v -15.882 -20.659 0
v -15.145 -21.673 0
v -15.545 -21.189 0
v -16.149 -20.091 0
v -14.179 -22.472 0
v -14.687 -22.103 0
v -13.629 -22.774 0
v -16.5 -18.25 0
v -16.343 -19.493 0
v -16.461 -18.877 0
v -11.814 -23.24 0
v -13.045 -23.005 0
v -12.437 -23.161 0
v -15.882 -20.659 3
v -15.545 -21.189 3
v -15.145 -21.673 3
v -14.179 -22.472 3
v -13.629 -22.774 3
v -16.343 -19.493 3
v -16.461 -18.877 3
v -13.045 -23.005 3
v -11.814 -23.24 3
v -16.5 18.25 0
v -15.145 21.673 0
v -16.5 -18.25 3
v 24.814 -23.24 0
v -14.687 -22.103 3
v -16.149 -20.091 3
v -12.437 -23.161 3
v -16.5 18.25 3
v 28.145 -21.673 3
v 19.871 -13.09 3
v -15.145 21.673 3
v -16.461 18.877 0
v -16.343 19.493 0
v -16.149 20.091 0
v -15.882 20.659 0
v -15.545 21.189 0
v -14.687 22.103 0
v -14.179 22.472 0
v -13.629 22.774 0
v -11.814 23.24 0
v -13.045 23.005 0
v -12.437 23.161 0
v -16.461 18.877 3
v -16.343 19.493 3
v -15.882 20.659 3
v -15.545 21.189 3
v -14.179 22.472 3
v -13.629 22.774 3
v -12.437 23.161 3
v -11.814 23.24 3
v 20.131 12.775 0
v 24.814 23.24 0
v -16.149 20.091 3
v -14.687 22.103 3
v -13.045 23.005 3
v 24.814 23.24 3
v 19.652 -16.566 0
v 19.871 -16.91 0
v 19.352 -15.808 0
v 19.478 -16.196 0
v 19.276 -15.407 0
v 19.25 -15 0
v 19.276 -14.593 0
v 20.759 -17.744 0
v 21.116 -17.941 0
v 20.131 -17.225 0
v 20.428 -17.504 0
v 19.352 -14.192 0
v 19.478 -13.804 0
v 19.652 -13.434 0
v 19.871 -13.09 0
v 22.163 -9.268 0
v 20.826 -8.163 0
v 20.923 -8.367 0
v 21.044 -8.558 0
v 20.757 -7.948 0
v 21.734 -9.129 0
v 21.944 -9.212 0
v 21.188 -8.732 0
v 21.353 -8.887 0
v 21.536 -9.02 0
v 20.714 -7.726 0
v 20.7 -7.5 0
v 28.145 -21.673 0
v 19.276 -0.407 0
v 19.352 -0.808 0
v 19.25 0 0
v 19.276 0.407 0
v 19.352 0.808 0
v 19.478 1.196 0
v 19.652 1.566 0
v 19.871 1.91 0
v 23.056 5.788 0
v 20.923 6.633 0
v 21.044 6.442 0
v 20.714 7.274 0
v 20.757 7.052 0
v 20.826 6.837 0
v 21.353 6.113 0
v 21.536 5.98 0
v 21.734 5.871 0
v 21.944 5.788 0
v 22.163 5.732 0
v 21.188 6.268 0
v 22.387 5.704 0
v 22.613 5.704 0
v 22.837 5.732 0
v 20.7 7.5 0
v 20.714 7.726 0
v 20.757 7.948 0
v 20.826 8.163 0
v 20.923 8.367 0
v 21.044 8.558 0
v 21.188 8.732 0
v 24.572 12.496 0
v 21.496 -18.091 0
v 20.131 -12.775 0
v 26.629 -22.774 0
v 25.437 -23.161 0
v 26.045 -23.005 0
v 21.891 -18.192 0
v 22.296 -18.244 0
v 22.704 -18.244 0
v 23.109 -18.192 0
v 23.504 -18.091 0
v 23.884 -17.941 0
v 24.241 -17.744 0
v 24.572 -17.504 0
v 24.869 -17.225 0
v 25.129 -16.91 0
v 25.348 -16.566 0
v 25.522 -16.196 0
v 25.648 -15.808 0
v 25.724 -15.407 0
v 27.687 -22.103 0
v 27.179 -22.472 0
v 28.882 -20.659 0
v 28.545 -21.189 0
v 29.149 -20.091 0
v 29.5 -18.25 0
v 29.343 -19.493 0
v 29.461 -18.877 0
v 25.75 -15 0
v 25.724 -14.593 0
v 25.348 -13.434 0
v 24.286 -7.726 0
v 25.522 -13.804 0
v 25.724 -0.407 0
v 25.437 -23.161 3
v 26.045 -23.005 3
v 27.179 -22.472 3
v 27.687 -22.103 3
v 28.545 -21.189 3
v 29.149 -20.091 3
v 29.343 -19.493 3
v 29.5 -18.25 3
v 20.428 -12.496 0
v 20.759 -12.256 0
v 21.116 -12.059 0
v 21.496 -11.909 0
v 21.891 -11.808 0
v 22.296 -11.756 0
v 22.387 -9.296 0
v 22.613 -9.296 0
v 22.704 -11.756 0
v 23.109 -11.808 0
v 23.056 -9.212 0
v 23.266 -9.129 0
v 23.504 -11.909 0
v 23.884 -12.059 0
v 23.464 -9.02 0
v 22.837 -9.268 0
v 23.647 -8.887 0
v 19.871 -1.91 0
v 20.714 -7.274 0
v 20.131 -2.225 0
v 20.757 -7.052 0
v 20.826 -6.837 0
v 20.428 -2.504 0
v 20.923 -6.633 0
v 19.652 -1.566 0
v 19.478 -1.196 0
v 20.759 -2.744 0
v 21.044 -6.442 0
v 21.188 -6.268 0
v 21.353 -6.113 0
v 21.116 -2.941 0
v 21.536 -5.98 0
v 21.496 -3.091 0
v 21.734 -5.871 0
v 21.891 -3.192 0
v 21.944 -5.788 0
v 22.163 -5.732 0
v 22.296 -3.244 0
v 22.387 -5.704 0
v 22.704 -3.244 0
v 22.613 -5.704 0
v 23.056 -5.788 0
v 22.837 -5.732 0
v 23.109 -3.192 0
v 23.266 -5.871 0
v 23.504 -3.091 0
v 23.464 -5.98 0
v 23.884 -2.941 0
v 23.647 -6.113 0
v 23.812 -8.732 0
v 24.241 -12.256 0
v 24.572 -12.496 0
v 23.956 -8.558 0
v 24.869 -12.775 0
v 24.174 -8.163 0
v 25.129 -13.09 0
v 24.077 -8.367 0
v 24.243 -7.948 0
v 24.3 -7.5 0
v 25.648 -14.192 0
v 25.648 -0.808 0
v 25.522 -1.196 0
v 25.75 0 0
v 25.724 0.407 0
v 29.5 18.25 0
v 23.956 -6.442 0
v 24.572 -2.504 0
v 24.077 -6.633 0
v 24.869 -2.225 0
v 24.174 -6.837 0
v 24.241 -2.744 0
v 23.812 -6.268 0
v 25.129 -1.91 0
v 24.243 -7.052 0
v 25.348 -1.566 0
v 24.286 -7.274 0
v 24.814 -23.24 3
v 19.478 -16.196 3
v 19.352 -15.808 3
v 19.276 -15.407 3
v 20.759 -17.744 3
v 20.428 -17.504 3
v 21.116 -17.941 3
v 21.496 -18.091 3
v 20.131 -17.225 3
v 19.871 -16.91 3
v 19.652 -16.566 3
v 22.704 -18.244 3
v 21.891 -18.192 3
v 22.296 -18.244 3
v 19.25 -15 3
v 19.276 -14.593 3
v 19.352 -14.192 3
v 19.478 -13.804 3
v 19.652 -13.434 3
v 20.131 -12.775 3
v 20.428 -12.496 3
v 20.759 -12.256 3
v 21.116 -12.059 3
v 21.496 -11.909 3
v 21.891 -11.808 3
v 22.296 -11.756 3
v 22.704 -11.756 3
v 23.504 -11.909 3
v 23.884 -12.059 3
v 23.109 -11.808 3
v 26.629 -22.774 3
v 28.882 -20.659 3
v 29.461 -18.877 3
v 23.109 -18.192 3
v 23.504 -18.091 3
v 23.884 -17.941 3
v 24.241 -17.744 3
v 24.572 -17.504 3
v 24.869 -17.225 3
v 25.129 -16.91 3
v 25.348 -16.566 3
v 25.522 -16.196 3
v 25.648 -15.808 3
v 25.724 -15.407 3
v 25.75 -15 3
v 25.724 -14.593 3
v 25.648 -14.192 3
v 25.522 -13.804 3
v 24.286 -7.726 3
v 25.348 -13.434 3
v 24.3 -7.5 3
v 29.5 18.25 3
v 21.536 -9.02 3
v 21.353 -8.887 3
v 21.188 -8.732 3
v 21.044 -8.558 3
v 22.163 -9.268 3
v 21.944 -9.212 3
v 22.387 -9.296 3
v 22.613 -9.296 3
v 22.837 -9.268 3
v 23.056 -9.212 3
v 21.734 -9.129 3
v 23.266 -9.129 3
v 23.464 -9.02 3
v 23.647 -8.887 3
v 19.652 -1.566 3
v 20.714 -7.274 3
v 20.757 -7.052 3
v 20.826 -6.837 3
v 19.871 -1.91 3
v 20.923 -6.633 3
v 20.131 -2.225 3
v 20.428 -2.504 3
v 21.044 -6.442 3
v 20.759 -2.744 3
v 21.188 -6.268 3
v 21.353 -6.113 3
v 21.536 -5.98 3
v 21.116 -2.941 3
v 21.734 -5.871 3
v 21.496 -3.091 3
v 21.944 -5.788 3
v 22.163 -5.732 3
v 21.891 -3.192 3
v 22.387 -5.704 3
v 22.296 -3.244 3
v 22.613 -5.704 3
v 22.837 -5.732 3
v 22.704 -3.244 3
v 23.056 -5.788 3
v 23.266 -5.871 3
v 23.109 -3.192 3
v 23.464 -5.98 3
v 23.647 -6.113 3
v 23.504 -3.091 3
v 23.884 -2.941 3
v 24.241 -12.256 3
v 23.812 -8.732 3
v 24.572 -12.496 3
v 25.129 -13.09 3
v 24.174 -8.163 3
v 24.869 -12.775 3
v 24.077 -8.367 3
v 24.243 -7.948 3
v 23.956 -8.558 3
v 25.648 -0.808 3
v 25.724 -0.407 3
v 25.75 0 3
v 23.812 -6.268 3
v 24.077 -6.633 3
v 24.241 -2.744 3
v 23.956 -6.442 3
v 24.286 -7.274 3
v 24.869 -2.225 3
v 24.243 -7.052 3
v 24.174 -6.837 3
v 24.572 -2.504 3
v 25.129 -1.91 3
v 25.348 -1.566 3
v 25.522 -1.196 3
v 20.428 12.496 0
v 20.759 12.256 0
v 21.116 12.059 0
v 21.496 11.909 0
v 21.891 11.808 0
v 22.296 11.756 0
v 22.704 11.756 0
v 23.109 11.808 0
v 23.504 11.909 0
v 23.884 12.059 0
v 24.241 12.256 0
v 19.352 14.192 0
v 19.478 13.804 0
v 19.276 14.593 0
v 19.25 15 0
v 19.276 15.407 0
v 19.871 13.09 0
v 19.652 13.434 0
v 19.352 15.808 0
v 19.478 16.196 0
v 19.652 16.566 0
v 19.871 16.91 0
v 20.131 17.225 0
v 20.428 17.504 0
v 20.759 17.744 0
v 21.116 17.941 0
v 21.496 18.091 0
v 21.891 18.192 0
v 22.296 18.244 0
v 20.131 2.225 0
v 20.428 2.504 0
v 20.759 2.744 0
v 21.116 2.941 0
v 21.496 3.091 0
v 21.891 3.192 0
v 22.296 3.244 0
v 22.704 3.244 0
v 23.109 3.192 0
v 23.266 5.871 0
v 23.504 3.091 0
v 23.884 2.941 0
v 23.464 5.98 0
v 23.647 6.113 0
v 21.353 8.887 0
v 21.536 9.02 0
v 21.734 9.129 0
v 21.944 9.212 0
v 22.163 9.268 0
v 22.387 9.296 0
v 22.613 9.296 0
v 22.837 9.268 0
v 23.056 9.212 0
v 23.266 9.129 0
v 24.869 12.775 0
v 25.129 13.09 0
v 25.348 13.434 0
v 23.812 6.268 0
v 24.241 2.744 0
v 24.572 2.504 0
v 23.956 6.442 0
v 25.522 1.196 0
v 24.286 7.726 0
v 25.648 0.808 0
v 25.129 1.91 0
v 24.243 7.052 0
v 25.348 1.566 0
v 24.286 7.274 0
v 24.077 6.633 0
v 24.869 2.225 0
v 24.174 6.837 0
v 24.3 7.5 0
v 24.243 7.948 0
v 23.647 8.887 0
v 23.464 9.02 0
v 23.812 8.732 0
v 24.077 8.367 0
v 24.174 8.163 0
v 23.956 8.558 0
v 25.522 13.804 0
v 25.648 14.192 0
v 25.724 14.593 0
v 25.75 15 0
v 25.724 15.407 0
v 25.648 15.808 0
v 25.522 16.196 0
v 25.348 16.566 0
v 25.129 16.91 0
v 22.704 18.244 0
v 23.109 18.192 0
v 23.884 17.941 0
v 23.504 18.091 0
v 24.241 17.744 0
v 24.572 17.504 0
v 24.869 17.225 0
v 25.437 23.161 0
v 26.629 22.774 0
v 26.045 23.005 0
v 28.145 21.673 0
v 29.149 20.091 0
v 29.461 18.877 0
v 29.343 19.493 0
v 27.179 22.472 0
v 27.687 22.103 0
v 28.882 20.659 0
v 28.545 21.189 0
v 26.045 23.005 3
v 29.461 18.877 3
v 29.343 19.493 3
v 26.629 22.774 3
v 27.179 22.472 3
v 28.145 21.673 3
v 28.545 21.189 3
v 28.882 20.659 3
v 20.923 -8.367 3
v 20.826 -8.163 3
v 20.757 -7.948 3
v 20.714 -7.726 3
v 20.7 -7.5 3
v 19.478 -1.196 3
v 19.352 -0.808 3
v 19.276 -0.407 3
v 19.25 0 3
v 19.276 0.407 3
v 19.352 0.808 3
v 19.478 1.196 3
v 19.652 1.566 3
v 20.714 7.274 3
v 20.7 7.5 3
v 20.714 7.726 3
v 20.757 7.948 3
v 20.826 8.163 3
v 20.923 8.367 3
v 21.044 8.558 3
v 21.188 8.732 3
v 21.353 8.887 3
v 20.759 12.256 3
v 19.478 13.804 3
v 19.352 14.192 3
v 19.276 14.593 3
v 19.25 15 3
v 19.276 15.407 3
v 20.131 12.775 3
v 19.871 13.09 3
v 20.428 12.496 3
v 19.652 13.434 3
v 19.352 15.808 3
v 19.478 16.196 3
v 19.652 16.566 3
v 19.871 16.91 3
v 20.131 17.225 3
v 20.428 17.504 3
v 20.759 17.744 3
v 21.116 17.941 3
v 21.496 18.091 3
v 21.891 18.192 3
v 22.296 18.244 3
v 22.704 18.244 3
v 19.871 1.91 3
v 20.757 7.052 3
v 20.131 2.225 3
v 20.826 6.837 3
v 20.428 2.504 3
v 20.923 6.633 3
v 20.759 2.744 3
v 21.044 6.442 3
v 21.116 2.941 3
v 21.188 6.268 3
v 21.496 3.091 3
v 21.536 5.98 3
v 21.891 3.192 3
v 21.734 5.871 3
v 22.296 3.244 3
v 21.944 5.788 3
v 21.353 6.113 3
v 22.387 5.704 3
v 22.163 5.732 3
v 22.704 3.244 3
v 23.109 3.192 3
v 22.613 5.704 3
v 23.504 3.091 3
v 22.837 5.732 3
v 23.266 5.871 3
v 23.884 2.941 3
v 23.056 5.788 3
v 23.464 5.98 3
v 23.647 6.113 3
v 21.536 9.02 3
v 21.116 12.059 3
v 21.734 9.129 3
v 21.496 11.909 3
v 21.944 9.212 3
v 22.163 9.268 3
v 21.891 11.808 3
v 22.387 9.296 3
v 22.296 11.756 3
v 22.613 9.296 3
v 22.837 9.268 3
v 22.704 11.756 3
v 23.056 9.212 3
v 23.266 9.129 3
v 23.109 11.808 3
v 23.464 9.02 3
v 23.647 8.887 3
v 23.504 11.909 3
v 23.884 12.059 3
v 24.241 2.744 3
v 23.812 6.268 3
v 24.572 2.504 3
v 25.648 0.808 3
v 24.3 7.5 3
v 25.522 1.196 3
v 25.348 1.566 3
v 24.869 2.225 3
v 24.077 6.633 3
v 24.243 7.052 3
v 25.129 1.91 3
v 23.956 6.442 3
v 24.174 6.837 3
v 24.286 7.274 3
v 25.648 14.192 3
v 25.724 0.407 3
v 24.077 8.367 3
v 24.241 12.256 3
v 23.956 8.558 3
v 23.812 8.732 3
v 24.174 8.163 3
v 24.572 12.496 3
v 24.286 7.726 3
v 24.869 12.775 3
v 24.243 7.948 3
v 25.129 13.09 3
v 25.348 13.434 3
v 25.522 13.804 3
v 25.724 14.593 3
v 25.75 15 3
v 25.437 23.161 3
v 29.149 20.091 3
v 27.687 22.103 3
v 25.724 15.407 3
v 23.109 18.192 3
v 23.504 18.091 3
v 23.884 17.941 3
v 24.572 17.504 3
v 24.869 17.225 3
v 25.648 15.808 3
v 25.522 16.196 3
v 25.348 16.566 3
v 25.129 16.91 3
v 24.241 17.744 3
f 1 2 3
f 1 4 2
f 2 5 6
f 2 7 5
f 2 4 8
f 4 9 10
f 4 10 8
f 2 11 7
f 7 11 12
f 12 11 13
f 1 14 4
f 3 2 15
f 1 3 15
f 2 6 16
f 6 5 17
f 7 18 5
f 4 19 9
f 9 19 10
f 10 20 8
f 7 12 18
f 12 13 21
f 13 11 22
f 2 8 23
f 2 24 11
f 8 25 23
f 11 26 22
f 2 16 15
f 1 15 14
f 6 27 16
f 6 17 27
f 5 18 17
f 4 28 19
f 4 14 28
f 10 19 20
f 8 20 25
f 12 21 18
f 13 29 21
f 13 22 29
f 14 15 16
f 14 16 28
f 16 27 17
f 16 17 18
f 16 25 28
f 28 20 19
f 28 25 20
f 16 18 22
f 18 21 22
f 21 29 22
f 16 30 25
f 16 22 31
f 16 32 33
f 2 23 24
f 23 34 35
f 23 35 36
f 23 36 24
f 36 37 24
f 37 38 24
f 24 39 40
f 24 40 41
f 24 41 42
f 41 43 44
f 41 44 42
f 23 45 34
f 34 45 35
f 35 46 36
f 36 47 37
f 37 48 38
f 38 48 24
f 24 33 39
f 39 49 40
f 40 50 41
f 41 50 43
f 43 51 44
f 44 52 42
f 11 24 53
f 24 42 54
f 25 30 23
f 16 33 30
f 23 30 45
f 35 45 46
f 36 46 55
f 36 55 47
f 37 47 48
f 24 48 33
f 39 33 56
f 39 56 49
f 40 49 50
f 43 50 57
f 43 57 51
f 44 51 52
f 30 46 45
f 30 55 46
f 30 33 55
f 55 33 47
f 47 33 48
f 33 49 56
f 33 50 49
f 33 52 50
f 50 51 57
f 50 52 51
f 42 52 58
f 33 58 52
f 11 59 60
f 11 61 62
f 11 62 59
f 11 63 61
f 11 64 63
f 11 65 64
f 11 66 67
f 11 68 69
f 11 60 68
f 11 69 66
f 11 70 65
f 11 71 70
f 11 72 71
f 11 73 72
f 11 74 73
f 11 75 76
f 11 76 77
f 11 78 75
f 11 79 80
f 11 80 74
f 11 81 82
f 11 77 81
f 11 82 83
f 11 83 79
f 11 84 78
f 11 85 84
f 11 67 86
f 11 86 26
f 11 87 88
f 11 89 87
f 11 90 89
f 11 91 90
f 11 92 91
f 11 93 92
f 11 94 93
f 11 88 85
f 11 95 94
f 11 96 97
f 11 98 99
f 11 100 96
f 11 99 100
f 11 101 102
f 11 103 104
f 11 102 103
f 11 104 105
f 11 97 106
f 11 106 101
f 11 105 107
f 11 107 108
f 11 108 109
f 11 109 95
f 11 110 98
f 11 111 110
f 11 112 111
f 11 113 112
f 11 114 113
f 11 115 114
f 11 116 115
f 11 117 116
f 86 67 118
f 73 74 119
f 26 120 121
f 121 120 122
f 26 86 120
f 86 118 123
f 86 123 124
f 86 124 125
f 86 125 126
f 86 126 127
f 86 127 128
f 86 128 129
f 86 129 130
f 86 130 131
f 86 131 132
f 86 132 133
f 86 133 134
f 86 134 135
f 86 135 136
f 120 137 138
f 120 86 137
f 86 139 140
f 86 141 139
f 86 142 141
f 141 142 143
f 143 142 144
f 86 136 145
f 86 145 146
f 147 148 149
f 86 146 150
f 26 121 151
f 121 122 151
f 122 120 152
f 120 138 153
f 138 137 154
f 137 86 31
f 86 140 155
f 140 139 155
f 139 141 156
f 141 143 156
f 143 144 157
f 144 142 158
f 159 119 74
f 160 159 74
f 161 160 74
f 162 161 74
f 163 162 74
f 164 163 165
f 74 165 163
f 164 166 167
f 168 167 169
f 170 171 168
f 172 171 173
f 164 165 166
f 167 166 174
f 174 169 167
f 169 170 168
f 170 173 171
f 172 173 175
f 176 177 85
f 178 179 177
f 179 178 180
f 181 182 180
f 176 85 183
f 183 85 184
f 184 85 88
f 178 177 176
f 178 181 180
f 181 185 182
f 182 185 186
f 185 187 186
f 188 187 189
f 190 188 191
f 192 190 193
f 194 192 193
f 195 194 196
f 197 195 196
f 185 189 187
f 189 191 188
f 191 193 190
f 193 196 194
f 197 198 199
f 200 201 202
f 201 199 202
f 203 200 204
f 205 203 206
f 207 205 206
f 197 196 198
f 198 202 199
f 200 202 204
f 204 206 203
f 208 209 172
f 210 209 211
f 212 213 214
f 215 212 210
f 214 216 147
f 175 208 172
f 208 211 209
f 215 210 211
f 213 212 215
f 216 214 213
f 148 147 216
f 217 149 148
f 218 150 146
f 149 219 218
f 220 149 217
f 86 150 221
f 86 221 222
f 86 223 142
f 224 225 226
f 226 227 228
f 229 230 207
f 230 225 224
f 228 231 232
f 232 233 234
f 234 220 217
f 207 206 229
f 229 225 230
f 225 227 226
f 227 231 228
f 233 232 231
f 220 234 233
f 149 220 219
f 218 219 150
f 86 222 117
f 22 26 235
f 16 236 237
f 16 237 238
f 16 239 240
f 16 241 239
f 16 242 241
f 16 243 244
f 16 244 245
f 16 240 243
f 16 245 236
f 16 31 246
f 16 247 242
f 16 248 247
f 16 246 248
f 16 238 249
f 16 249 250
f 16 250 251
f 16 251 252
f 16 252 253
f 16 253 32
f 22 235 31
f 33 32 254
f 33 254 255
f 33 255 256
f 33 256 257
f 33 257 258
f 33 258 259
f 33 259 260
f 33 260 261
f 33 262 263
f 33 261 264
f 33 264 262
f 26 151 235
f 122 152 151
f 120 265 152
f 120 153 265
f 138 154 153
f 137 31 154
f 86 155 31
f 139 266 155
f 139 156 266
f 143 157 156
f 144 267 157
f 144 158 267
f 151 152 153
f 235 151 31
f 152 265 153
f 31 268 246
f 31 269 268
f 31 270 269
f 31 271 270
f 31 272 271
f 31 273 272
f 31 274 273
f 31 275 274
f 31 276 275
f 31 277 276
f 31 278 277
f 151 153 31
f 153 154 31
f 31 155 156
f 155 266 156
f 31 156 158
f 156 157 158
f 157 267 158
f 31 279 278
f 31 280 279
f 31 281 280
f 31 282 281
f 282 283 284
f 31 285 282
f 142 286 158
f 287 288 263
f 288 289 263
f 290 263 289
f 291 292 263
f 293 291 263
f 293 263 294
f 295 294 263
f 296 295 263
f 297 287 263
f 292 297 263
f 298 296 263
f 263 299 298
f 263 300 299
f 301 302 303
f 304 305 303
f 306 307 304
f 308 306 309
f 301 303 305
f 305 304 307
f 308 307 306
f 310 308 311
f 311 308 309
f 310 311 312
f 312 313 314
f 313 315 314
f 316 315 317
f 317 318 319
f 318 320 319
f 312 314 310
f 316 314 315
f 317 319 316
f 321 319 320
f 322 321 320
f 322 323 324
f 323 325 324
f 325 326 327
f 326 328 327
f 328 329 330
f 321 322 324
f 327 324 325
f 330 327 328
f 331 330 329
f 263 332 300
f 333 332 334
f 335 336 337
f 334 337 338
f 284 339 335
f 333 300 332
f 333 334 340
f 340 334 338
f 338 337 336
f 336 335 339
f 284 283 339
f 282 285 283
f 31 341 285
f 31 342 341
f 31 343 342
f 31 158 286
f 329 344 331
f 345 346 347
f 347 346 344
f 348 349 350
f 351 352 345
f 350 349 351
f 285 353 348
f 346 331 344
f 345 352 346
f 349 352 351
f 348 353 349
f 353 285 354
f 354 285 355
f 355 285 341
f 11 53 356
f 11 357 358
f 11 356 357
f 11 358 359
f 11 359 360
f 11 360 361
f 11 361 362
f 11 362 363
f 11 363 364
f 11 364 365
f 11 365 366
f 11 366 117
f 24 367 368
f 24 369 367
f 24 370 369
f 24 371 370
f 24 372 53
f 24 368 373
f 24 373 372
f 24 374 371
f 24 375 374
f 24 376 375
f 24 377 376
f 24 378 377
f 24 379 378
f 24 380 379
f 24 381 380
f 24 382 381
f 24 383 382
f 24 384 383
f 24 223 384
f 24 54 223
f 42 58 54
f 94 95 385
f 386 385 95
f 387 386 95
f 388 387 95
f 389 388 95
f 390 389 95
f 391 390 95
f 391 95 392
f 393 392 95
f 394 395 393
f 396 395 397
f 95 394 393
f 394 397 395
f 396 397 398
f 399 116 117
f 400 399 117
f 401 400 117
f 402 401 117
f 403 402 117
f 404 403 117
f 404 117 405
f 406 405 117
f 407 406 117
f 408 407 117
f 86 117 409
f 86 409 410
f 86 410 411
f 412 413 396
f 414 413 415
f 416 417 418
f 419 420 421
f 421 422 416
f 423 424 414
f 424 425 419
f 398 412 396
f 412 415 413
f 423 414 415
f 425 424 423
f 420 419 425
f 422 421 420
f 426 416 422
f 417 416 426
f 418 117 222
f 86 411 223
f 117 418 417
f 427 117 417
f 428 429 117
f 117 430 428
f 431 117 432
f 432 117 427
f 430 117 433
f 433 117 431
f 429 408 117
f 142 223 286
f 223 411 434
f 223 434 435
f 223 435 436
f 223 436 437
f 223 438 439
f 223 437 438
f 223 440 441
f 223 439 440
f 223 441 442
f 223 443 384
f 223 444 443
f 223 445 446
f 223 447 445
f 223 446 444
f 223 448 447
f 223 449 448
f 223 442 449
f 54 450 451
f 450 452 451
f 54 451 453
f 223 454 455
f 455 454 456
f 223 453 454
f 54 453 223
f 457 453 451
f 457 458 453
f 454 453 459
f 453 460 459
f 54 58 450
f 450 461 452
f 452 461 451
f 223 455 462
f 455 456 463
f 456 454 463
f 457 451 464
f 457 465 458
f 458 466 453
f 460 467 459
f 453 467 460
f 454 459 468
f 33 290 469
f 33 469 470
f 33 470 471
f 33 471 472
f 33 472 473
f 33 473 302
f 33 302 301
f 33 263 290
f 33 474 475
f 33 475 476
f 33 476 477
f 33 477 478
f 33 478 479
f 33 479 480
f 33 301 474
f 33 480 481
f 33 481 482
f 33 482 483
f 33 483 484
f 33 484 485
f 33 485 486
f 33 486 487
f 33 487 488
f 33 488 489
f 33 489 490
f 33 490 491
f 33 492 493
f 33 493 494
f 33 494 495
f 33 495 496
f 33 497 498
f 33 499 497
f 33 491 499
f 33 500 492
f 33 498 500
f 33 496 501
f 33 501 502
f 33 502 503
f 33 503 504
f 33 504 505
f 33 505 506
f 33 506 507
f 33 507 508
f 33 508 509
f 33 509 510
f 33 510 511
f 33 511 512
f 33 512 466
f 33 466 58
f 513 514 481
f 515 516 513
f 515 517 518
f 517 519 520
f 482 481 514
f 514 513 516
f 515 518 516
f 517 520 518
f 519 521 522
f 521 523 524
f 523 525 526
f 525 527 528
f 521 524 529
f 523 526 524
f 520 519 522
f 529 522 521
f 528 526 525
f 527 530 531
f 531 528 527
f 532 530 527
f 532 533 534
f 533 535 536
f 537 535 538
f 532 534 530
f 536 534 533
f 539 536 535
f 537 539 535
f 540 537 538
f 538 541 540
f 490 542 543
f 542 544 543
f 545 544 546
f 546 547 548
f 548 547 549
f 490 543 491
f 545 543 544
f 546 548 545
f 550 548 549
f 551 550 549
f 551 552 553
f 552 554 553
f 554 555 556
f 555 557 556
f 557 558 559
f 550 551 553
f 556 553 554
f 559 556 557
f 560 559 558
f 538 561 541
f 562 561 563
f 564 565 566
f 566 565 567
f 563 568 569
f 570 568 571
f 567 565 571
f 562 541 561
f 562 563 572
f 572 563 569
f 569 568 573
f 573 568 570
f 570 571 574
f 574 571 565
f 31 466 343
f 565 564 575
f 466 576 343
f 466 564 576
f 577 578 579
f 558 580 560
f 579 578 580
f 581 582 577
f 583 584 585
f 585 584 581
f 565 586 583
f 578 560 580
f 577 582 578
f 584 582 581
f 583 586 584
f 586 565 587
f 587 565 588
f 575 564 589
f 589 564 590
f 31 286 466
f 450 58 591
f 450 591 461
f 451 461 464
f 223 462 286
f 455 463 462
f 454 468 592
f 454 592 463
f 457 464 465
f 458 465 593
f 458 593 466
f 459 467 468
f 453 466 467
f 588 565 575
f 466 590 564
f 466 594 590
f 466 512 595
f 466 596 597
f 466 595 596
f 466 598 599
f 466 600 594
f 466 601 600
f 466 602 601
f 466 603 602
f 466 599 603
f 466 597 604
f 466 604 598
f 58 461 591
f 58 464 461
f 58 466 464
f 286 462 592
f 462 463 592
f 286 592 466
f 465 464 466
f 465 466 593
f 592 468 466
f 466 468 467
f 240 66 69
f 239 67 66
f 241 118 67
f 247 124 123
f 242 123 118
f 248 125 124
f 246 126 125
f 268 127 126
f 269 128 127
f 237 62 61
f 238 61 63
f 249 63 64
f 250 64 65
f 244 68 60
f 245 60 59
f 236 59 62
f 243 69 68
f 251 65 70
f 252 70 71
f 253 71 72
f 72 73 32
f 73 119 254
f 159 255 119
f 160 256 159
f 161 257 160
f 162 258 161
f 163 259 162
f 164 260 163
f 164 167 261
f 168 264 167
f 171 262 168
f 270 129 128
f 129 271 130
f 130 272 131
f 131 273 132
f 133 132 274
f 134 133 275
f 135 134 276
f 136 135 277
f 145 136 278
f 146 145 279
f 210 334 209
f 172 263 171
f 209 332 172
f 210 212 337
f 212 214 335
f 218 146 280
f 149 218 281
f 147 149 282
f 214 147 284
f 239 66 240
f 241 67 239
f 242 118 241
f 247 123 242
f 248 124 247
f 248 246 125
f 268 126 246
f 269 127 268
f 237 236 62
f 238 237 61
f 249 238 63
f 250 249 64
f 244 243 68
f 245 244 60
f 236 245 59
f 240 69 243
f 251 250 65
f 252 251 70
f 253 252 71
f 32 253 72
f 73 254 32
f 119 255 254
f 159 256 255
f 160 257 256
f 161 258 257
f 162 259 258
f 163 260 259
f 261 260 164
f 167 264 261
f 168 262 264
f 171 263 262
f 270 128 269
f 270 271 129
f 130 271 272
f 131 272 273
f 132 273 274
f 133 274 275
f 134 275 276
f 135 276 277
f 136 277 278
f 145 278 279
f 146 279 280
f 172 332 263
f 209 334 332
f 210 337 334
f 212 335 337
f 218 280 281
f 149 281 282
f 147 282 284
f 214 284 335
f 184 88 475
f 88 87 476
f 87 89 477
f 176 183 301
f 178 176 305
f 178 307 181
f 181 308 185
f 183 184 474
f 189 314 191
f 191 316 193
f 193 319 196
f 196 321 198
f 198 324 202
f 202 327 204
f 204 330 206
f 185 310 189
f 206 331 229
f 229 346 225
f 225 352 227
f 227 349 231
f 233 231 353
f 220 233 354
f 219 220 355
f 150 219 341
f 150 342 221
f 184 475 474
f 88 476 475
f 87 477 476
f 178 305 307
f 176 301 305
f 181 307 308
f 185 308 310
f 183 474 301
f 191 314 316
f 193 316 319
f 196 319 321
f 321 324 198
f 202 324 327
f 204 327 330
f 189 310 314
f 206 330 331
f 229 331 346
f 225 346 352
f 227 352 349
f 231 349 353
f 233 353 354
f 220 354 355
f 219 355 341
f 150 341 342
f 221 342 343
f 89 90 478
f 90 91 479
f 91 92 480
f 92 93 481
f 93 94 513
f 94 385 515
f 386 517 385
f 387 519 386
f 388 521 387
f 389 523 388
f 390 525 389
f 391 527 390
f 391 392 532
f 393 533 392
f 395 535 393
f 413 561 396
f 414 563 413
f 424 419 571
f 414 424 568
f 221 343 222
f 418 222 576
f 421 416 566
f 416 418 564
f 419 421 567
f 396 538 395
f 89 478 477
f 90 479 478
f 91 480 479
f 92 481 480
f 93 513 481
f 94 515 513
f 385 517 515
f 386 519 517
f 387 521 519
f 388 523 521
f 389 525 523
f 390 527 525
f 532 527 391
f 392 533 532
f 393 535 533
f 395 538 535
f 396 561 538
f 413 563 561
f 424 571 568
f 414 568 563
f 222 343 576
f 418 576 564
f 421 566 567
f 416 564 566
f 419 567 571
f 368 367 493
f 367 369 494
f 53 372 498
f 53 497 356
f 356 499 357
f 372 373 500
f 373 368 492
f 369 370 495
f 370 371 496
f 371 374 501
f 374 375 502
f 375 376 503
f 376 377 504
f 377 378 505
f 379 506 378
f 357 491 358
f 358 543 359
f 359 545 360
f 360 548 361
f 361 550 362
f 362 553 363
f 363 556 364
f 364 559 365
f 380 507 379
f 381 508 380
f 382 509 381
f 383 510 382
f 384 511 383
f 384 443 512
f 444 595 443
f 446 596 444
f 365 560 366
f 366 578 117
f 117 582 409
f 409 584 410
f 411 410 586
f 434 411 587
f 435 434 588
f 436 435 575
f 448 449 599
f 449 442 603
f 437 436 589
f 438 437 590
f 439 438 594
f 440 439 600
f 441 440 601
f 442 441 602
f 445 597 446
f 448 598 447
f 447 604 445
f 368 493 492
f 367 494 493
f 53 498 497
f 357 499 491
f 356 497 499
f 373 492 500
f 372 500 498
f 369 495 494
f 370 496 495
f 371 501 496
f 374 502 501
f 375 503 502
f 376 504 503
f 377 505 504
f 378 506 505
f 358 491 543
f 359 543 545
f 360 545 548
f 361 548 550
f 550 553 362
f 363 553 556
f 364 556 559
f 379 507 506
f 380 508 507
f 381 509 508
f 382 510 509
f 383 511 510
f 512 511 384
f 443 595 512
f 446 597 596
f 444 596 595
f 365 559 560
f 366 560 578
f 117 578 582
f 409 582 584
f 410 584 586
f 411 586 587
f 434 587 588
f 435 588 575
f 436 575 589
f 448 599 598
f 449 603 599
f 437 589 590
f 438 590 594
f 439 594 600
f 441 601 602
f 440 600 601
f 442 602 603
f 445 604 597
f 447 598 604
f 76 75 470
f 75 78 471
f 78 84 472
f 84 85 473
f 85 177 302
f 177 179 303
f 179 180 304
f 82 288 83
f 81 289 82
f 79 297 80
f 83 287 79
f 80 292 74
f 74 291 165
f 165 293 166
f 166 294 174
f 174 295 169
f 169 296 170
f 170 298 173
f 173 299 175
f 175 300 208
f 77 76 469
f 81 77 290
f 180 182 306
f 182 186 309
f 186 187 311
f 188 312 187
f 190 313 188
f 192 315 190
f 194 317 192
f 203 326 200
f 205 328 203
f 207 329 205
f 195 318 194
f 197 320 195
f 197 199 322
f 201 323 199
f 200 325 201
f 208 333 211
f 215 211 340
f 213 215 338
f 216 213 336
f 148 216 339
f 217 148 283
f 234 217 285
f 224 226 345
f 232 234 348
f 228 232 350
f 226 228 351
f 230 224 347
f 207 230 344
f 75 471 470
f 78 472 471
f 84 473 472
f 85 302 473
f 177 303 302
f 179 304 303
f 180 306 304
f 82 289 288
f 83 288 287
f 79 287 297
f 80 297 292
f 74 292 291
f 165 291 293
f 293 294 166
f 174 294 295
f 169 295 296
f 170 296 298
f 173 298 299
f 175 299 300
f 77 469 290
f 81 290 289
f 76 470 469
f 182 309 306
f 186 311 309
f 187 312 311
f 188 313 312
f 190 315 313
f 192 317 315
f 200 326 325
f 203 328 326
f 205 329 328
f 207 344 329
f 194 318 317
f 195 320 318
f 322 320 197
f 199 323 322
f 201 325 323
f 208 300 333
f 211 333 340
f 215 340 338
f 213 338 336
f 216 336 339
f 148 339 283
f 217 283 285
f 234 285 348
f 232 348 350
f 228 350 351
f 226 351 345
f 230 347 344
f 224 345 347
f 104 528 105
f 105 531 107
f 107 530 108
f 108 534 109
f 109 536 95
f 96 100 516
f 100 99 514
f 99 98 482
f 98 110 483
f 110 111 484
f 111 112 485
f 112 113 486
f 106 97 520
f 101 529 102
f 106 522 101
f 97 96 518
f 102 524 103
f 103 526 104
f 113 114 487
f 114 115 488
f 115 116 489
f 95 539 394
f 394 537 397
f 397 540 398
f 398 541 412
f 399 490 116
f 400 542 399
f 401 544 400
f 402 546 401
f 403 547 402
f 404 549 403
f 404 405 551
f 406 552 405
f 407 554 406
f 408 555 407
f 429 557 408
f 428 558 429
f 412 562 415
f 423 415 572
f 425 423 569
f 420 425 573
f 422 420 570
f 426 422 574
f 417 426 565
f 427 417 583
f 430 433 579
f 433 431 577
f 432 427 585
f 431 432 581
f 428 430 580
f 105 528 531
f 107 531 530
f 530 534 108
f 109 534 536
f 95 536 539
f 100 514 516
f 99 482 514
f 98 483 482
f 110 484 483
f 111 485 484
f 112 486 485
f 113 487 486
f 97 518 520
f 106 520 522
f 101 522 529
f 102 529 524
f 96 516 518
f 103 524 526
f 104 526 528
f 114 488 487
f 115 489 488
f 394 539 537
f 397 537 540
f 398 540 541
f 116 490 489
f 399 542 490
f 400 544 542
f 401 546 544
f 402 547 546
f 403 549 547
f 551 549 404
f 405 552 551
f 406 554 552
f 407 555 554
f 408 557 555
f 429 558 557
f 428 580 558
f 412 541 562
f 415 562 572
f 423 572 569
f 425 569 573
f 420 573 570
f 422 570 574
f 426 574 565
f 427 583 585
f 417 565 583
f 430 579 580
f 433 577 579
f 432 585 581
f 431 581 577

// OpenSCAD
$fn = 50;

difference() {
	union() {
		translate(v = [6.5, 0.0, 0]) {
			hull() {
				translate(v = [-18.0, 18.25, 0]) {
					cylinder(h = 3, r = 5);
				}
				translate(v = [18.0, 18.25, 0]) {
					cylinder(h = 3, r = 5);
				}
				translate(v = [-18.0, -18.25, 0]) {
					cylinder(h = 3, r = 5);
				}
				translate(v = [18.0, -18.25, 0]) {
					cylinder(h = 3, r = 5);
				}
			}
		}
	}
	union() {
		translate(v = [22.5, -15.0, -1]) {
			cylinder(h = 5, r = 3.25);
		}
		translate(v = [22.5, 0.0, -1]) {
			cylinder(h = 5, r = 3.25);
		}
		translate(v = [22.5, 15.0, -1]) {
			cylinder(h = 5, r = 3.25);
		}
		translate(v = [22.5, -7.5, -1]) {
			cylinder(h = 5, r = 1.8);
		}
		translate(v = [22.5, 7.5, -1]) {
			cylinder(h = 5, r = 1.8);
		}
	}
}
